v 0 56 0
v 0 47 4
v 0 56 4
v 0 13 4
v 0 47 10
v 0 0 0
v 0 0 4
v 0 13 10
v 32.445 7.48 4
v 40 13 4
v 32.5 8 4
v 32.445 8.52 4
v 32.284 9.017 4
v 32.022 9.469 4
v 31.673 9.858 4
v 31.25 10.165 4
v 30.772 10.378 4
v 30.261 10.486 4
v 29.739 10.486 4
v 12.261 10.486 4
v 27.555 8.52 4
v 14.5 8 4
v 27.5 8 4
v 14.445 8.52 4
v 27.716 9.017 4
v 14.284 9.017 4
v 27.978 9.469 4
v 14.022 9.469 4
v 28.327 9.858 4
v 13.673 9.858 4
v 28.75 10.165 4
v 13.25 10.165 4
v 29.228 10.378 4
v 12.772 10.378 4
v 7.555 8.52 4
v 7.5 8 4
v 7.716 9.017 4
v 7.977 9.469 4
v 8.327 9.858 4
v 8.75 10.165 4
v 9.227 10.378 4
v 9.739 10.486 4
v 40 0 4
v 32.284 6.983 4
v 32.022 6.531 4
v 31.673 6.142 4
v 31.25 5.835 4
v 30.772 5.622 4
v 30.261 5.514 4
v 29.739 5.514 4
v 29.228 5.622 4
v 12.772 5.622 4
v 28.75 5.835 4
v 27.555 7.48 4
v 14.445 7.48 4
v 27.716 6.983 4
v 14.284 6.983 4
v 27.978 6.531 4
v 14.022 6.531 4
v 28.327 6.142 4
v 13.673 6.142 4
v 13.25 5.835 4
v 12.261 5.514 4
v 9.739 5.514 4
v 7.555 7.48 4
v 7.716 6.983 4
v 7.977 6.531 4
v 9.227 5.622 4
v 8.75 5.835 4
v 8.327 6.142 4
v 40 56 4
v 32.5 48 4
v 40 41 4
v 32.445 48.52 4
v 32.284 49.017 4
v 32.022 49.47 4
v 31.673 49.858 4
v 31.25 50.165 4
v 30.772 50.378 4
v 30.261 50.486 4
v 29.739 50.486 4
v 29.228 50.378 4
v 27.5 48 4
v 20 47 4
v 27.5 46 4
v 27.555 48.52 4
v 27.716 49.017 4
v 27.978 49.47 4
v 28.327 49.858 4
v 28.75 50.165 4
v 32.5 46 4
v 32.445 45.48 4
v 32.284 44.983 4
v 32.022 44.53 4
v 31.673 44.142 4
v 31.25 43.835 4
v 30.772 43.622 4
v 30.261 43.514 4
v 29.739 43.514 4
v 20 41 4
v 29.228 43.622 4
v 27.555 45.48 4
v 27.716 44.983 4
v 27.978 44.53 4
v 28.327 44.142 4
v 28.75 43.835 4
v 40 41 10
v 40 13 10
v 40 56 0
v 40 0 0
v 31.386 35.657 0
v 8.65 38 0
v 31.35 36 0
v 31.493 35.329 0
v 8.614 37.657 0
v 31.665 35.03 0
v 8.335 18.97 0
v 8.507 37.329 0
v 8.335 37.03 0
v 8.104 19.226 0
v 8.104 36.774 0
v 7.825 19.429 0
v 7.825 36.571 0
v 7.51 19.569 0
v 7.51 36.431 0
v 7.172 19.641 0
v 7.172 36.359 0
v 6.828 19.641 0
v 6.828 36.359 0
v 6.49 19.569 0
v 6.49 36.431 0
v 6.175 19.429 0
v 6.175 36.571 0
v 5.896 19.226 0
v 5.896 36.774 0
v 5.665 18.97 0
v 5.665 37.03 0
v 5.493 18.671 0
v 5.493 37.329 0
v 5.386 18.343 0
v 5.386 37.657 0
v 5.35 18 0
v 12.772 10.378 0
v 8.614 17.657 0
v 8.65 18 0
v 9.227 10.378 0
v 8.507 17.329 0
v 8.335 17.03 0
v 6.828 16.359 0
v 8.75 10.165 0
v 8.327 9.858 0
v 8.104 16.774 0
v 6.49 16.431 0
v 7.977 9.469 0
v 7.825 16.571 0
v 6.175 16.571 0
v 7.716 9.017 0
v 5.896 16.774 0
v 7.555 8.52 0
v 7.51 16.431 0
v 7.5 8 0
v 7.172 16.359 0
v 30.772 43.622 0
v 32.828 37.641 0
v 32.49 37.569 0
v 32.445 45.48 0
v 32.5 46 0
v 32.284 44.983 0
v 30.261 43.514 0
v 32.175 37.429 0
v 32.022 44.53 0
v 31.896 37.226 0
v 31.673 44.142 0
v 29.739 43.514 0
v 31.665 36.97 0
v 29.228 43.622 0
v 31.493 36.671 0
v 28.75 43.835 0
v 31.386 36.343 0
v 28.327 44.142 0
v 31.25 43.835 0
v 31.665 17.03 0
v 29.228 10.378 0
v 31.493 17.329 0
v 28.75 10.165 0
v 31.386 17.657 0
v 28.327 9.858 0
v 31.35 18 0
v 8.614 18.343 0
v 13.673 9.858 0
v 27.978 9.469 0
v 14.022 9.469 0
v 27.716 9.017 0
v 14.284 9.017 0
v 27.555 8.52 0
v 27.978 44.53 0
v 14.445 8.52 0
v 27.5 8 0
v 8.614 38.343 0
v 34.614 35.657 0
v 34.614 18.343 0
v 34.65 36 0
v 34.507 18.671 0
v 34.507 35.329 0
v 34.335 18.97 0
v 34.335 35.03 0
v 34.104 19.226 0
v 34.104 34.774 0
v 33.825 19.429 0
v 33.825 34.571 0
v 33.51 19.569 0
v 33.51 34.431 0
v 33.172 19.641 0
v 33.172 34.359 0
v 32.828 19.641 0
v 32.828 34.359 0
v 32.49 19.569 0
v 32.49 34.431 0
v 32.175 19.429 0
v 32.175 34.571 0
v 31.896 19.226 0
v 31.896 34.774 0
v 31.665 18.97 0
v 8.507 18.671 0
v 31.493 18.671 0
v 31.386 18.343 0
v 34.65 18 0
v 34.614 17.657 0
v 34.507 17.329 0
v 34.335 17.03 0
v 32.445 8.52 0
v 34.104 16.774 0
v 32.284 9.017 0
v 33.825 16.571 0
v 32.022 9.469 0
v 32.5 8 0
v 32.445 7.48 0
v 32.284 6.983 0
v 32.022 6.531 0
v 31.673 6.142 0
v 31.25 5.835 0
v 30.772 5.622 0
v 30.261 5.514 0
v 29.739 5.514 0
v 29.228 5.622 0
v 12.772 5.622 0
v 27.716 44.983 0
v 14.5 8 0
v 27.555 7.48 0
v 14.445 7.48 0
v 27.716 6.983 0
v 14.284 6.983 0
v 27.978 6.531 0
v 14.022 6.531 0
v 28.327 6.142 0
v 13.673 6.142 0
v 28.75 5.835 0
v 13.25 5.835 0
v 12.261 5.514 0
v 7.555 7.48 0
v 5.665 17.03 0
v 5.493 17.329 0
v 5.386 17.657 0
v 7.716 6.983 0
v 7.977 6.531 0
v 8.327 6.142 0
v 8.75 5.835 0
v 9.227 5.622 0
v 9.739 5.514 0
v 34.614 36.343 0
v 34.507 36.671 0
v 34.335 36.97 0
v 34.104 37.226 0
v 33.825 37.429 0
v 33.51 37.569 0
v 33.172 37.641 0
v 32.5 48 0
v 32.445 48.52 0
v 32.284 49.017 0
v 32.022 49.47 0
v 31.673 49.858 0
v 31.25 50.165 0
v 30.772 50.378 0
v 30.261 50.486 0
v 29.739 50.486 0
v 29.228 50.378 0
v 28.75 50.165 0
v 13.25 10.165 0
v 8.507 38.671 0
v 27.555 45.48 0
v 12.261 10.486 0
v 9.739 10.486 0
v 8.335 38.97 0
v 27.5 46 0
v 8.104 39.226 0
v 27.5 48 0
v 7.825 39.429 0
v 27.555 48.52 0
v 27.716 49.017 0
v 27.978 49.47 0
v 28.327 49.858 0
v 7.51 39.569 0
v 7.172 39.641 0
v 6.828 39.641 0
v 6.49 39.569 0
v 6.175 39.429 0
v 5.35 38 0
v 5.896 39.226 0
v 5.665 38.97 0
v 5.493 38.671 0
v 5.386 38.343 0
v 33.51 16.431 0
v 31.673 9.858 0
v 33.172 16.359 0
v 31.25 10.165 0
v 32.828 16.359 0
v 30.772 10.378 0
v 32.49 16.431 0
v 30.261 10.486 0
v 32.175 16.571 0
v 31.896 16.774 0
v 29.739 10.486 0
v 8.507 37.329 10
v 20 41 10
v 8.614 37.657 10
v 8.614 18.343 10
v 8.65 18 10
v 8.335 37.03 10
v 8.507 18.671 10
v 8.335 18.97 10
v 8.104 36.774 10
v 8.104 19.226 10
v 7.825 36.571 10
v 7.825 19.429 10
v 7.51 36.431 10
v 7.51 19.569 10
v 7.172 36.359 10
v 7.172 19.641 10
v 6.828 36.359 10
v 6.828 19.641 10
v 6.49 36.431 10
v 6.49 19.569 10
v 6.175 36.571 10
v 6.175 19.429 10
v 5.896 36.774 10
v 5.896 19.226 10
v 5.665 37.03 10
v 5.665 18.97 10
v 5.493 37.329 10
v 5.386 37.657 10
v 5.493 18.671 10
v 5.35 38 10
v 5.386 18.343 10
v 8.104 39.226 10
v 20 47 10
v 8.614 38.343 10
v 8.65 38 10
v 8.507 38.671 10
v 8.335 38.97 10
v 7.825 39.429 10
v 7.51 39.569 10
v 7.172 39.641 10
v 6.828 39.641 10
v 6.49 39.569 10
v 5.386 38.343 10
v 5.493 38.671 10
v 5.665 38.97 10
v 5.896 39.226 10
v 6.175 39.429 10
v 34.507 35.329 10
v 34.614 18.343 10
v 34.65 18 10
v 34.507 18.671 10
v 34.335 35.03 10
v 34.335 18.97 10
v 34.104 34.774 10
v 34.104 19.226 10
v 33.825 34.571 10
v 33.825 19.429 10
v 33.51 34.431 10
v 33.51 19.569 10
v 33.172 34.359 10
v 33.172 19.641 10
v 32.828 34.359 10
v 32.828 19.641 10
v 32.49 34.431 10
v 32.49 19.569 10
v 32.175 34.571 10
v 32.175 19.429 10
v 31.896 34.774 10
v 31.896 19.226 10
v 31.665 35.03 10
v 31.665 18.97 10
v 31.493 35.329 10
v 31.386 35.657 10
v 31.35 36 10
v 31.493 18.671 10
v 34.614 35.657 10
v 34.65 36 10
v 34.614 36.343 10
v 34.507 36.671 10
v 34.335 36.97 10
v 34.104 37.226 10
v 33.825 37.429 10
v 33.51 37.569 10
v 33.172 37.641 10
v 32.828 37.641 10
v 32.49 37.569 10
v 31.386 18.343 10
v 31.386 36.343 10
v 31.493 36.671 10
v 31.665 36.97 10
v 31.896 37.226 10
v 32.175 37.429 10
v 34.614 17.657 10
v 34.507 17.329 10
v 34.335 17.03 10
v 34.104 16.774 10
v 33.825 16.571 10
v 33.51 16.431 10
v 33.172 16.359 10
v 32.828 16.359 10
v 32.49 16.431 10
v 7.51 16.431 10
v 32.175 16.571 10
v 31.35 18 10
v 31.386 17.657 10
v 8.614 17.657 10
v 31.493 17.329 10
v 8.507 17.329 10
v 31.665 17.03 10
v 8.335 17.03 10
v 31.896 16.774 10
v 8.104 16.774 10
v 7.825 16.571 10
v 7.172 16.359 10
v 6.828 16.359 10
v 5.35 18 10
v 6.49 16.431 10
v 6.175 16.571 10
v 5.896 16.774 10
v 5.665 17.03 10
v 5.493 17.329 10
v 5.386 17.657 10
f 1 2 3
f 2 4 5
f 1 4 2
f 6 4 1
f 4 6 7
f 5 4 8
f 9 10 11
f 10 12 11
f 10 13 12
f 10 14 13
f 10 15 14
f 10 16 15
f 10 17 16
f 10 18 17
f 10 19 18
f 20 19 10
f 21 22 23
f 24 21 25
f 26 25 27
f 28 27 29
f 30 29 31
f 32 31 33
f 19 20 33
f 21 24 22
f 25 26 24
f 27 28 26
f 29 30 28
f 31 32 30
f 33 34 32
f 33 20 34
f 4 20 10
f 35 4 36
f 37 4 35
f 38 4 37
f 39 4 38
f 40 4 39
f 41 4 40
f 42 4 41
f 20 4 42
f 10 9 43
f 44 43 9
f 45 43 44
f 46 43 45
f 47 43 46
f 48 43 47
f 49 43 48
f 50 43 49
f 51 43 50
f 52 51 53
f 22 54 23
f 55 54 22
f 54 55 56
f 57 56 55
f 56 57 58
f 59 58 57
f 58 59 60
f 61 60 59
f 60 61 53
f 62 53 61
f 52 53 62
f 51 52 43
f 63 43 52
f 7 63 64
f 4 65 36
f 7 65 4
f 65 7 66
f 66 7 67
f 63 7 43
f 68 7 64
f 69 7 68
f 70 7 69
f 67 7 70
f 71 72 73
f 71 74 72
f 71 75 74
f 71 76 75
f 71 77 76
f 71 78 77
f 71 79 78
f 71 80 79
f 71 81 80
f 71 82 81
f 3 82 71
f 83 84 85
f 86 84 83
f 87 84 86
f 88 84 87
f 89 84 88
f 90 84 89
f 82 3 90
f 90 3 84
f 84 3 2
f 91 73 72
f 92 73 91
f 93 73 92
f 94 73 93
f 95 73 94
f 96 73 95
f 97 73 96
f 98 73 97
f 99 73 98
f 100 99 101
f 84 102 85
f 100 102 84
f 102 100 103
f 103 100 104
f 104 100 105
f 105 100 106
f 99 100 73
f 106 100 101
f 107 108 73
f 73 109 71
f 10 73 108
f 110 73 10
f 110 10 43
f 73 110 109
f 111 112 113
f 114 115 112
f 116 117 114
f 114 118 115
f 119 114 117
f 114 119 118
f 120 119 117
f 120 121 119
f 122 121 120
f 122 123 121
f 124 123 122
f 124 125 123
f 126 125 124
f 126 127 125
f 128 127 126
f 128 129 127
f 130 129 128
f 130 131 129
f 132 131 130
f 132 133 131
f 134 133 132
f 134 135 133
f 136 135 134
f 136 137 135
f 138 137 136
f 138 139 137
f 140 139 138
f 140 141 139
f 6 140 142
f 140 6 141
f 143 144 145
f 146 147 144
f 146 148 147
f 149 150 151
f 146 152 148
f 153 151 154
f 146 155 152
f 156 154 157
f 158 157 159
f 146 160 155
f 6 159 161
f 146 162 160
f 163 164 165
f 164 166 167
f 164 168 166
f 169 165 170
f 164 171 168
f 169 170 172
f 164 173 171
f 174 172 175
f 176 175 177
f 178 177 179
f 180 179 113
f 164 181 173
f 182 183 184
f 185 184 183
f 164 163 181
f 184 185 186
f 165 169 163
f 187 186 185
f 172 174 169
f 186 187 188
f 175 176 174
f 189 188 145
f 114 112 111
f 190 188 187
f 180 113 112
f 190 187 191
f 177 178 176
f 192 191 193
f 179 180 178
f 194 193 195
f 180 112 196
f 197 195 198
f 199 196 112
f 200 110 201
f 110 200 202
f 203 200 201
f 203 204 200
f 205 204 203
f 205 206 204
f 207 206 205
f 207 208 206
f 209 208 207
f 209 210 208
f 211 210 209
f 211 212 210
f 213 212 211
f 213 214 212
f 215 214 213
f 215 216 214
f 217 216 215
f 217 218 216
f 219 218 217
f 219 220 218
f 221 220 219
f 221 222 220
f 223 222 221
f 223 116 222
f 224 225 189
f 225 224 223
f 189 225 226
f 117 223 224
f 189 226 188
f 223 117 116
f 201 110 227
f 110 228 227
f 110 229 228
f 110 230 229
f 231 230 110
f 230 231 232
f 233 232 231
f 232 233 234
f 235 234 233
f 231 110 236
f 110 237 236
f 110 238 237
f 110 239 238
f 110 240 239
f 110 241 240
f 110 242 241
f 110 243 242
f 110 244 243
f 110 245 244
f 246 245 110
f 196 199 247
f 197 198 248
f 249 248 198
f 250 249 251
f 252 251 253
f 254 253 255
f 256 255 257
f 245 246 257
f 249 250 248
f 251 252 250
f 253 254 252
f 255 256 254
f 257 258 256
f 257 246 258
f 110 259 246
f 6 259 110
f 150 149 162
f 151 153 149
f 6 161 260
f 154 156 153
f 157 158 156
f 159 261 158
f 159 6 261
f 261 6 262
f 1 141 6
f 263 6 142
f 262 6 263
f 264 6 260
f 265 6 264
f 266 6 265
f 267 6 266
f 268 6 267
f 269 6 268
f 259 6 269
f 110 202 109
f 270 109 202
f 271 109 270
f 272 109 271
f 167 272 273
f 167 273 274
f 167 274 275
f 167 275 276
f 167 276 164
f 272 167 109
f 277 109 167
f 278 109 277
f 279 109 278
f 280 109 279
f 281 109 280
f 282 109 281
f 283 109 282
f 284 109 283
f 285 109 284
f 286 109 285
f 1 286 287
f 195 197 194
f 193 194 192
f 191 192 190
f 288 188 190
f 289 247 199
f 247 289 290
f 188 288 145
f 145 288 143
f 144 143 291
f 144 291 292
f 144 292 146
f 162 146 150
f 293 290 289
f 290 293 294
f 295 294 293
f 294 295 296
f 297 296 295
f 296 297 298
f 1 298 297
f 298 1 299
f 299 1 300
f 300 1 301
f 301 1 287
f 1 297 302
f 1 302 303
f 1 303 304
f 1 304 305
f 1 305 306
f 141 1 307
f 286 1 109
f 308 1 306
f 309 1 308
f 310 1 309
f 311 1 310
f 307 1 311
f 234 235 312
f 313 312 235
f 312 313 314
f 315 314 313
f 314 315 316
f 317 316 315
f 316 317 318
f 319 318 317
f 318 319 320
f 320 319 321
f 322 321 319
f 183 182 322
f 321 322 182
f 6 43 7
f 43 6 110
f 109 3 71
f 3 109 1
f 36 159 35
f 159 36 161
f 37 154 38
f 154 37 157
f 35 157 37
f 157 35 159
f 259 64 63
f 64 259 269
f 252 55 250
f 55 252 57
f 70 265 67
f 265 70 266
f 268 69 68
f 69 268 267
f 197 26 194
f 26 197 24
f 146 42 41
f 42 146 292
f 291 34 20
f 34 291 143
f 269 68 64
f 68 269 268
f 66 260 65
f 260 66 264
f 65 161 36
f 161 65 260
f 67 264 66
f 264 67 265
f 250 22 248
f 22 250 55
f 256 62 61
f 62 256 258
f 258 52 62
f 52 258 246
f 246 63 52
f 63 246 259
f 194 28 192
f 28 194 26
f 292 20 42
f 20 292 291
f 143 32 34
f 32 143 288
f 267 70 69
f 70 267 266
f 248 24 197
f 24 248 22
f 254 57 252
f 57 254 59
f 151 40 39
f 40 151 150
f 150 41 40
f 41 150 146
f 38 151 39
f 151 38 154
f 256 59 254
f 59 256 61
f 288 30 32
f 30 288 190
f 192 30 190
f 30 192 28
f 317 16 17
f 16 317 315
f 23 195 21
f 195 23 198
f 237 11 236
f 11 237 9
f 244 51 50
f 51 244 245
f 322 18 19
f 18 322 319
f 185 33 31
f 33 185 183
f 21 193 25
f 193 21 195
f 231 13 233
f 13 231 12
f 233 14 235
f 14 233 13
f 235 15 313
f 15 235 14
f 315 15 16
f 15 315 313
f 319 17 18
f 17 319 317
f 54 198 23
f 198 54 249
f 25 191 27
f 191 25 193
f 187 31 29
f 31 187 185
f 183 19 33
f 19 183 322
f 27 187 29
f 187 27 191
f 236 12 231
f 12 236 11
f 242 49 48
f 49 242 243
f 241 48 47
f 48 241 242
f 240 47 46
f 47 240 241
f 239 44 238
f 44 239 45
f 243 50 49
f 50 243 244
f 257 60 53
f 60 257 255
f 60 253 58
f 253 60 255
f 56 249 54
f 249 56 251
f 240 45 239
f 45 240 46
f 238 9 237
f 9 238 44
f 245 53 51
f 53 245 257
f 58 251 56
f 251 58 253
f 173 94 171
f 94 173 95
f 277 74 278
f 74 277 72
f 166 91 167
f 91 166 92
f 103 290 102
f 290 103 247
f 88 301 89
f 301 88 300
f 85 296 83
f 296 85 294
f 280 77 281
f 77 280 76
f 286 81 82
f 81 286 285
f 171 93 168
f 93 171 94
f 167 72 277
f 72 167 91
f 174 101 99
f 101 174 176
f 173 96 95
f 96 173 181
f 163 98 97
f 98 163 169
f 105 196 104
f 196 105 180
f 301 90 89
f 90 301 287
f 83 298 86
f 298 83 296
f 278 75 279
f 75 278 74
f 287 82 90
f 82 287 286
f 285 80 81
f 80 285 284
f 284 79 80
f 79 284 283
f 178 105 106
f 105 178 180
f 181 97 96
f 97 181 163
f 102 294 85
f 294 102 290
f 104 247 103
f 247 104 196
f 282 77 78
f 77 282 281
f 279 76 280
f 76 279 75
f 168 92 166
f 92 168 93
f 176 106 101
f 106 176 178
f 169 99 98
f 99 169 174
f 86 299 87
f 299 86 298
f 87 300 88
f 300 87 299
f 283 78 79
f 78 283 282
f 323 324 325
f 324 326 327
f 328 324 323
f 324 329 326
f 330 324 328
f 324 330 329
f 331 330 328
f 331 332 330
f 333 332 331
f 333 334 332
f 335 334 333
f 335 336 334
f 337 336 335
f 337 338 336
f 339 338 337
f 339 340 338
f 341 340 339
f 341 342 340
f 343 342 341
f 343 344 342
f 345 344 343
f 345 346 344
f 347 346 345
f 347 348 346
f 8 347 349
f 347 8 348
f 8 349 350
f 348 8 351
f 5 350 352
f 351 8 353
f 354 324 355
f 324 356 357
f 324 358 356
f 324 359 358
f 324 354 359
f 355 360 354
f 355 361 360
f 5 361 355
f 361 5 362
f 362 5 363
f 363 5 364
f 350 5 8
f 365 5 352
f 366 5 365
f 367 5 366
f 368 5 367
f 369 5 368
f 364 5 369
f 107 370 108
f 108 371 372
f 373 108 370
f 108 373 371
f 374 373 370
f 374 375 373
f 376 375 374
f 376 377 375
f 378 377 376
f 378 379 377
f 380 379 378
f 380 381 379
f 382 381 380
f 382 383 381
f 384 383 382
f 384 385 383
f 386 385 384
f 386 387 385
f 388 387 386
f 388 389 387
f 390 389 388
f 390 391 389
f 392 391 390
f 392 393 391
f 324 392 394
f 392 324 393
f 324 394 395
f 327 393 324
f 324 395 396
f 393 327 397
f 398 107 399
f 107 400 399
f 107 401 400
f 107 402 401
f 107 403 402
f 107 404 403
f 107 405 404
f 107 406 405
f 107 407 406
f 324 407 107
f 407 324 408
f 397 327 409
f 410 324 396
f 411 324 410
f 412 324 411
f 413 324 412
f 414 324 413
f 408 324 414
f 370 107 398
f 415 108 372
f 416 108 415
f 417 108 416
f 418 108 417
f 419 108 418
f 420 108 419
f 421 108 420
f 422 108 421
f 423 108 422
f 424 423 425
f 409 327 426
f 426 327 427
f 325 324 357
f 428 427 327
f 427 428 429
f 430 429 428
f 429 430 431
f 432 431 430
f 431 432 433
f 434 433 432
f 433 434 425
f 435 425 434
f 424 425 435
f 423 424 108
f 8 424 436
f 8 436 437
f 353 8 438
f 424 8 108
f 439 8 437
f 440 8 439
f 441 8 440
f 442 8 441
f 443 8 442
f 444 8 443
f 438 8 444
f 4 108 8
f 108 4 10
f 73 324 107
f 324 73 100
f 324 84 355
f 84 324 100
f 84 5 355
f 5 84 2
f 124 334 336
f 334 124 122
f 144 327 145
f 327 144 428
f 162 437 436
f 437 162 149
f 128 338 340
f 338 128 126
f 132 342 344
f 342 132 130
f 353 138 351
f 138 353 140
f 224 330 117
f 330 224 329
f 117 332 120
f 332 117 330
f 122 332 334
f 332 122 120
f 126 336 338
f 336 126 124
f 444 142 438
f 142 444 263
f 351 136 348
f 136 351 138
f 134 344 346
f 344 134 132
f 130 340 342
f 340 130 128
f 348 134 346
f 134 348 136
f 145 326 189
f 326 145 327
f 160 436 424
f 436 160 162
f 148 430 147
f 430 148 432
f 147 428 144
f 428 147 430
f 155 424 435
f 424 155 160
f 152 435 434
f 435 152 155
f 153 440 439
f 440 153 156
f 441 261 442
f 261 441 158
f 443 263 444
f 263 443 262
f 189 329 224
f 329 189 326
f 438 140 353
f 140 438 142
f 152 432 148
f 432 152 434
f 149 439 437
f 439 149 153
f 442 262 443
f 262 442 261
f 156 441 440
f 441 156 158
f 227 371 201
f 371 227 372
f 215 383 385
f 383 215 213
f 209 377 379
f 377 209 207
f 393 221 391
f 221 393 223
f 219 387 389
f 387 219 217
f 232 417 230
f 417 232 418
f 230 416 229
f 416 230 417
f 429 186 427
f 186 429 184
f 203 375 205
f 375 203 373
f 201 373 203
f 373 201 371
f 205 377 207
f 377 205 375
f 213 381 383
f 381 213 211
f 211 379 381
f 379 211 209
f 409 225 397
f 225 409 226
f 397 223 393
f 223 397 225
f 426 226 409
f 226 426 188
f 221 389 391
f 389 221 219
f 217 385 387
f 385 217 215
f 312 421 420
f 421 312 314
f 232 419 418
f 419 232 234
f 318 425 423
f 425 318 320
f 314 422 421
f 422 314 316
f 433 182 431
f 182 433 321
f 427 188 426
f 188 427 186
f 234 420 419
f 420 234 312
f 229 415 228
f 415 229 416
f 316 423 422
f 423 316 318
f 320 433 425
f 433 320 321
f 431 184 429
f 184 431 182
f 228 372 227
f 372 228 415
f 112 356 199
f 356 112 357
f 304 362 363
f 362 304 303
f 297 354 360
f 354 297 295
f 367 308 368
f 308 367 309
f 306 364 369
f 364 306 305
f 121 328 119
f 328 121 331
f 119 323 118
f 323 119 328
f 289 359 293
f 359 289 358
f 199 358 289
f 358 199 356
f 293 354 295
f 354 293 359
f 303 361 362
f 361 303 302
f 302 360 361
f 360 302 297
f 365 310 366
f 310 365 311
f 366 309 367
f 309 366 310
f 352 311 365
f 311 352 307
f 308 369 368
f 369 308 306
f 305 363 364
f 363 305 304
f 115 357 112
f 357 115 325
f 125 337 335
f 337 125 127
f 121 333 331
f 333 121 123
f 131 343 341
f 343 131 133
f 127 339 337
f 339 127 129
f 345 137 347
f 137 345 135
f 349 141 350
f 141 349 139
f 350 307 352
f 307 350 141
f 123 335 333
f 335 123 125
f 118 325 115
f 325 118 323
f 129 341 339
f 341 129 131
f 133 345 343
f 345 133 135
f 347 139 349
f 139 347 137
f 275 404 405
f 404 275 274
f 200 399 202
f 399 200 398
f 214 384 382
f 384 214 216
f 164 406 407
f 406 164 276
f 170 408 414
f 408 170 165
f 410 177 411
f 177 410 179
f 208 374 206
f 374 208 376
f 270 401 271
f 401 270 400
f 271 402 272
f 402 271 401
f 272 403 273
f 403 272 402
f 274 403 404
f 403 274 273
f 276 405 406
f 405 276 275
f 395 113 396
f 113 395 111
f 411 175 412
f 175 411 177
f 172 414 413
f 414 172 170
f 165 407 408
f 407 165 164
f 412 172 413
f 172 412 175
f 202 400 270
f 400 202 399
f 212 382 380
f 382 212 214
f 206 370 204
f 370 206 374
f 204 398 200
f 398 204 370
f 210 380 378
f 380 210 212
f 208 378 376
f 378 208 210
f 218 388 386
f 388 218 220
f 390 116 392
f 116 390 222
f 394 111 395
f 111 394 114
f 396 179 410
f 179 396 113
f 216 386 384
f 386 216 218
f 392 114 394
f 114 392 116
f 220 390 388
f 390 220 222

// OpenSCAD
$fn=30;

bed_carriage_bottom();

module base() {
    difference() {
        //base
        cube([40, 56, 4]);
    
        hull() {
            translate([10, 8, 0])
            cylinder(d=5, h=8);

            translate([12, 8, 0])
            cylinder(d=5, h=8);
        }
        translate([30, 8, 0])
        cylinder(d=5, h=8);

        hull() {
            translate([30, 46, 0])
            cylinder(d=5, h=8);

            translate([30, 48, 0])
            cylinder(d=5, h=8);
        }
    }
}

module body() {
    union() {
        base();
        translate([0, 13, 0])
        cube([40, 28, 10]);

        translate([0, 41, 0])
        cube([20, 6, 10]);
    }
}

module bed_carriage_bottom() {
    difference() {
        body();

        translate([7, 18, 0])
        cylinder(d=3.3, h=11);

        translate([33, 18, 0])
        cylinder(d=3.3, h=11);

        translate([7, 38, 0])
        cylinder(d=3.3, h=11);

        translate([33, 36, 0]) cylinder(d=3.3, h=11);
    }
}
